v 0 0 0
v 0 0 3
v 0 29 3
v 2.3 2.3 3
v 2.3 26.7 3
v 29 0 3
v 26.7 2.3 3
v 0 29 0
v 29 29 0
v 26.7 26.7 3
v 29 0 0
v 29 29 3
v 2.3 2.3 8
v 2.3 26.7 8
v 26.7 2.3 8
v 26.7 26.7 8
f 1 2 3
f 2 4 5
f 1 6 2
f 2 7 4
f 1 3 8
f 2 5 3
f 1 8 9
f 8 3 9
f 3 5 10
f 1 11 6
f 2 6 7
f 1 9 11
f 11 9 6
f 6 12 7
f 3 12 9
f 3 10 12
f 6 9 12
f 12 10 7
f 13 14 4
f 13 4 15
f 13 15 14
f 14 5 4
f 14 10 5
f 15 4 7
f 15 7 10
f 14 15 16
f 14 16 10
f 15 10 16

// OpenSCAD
// ===== WATCHDOG CASE =====
// Set which part to render
show_body = 0;  // 1 = show body, 0 = hide
show_lid = 1;   // 1 = show lid, 0 = hide



// ===== LID =====
lid_plug_height = 5;     // How far lid plugs into the case
lid_top_height = 3;      // Thickness of lid top
lid_tolerance = 0.3;     // Gap so lid fits (0.3-0.5 is typical for FDM printing)

// ===== INTERIOR DIMENSIONS =====
interior_width = 25;     // 22mm holder + 1.5mm wiggle each side
interior_depth = 25;     // same
interior_height = 84 + lid_plug_height;    // 76mm holder + 6mm ESP + 2mm wiggle

// ===== WALL THICKNESS =====
wall = 2;
bottom = 2;

// ===== OUTER DIMENSIONS =====
outer_width = interior_width + (wall * 2);    // 29mm
outer_depth = interior_depth + (wall * 2);    // 29mm
outer_height = interior_height + bottom;      // 86mm

// ===== BODY =====
if (show_body == 1) {
    difference() {
        // Solid outer box
        cube([outer_width, outer_depth, outer_height]);
        
        // Hollow interior
        translate([wall, wall, bottom])
            cube([interior_width, interior_depth, interior_height + 1]);  // +1 to ensure clean cut at top
    }
}

// ===== LID =====
if (show_lid == 1) {
    // Top of lid (sits flush with case top)
    cube([outer_width, outer_depth, lid_top_height]);
    
    // Plug part (goes inside the case)
    translate([wall + lid_tolerance, wall + lid_tolerance, lid_top_height])
        cube([
            interior_width - (lid_tolerance * 2),
            interior_depth - (lid_tolerance * 2),
            lid_plug_height
        ]);
}
